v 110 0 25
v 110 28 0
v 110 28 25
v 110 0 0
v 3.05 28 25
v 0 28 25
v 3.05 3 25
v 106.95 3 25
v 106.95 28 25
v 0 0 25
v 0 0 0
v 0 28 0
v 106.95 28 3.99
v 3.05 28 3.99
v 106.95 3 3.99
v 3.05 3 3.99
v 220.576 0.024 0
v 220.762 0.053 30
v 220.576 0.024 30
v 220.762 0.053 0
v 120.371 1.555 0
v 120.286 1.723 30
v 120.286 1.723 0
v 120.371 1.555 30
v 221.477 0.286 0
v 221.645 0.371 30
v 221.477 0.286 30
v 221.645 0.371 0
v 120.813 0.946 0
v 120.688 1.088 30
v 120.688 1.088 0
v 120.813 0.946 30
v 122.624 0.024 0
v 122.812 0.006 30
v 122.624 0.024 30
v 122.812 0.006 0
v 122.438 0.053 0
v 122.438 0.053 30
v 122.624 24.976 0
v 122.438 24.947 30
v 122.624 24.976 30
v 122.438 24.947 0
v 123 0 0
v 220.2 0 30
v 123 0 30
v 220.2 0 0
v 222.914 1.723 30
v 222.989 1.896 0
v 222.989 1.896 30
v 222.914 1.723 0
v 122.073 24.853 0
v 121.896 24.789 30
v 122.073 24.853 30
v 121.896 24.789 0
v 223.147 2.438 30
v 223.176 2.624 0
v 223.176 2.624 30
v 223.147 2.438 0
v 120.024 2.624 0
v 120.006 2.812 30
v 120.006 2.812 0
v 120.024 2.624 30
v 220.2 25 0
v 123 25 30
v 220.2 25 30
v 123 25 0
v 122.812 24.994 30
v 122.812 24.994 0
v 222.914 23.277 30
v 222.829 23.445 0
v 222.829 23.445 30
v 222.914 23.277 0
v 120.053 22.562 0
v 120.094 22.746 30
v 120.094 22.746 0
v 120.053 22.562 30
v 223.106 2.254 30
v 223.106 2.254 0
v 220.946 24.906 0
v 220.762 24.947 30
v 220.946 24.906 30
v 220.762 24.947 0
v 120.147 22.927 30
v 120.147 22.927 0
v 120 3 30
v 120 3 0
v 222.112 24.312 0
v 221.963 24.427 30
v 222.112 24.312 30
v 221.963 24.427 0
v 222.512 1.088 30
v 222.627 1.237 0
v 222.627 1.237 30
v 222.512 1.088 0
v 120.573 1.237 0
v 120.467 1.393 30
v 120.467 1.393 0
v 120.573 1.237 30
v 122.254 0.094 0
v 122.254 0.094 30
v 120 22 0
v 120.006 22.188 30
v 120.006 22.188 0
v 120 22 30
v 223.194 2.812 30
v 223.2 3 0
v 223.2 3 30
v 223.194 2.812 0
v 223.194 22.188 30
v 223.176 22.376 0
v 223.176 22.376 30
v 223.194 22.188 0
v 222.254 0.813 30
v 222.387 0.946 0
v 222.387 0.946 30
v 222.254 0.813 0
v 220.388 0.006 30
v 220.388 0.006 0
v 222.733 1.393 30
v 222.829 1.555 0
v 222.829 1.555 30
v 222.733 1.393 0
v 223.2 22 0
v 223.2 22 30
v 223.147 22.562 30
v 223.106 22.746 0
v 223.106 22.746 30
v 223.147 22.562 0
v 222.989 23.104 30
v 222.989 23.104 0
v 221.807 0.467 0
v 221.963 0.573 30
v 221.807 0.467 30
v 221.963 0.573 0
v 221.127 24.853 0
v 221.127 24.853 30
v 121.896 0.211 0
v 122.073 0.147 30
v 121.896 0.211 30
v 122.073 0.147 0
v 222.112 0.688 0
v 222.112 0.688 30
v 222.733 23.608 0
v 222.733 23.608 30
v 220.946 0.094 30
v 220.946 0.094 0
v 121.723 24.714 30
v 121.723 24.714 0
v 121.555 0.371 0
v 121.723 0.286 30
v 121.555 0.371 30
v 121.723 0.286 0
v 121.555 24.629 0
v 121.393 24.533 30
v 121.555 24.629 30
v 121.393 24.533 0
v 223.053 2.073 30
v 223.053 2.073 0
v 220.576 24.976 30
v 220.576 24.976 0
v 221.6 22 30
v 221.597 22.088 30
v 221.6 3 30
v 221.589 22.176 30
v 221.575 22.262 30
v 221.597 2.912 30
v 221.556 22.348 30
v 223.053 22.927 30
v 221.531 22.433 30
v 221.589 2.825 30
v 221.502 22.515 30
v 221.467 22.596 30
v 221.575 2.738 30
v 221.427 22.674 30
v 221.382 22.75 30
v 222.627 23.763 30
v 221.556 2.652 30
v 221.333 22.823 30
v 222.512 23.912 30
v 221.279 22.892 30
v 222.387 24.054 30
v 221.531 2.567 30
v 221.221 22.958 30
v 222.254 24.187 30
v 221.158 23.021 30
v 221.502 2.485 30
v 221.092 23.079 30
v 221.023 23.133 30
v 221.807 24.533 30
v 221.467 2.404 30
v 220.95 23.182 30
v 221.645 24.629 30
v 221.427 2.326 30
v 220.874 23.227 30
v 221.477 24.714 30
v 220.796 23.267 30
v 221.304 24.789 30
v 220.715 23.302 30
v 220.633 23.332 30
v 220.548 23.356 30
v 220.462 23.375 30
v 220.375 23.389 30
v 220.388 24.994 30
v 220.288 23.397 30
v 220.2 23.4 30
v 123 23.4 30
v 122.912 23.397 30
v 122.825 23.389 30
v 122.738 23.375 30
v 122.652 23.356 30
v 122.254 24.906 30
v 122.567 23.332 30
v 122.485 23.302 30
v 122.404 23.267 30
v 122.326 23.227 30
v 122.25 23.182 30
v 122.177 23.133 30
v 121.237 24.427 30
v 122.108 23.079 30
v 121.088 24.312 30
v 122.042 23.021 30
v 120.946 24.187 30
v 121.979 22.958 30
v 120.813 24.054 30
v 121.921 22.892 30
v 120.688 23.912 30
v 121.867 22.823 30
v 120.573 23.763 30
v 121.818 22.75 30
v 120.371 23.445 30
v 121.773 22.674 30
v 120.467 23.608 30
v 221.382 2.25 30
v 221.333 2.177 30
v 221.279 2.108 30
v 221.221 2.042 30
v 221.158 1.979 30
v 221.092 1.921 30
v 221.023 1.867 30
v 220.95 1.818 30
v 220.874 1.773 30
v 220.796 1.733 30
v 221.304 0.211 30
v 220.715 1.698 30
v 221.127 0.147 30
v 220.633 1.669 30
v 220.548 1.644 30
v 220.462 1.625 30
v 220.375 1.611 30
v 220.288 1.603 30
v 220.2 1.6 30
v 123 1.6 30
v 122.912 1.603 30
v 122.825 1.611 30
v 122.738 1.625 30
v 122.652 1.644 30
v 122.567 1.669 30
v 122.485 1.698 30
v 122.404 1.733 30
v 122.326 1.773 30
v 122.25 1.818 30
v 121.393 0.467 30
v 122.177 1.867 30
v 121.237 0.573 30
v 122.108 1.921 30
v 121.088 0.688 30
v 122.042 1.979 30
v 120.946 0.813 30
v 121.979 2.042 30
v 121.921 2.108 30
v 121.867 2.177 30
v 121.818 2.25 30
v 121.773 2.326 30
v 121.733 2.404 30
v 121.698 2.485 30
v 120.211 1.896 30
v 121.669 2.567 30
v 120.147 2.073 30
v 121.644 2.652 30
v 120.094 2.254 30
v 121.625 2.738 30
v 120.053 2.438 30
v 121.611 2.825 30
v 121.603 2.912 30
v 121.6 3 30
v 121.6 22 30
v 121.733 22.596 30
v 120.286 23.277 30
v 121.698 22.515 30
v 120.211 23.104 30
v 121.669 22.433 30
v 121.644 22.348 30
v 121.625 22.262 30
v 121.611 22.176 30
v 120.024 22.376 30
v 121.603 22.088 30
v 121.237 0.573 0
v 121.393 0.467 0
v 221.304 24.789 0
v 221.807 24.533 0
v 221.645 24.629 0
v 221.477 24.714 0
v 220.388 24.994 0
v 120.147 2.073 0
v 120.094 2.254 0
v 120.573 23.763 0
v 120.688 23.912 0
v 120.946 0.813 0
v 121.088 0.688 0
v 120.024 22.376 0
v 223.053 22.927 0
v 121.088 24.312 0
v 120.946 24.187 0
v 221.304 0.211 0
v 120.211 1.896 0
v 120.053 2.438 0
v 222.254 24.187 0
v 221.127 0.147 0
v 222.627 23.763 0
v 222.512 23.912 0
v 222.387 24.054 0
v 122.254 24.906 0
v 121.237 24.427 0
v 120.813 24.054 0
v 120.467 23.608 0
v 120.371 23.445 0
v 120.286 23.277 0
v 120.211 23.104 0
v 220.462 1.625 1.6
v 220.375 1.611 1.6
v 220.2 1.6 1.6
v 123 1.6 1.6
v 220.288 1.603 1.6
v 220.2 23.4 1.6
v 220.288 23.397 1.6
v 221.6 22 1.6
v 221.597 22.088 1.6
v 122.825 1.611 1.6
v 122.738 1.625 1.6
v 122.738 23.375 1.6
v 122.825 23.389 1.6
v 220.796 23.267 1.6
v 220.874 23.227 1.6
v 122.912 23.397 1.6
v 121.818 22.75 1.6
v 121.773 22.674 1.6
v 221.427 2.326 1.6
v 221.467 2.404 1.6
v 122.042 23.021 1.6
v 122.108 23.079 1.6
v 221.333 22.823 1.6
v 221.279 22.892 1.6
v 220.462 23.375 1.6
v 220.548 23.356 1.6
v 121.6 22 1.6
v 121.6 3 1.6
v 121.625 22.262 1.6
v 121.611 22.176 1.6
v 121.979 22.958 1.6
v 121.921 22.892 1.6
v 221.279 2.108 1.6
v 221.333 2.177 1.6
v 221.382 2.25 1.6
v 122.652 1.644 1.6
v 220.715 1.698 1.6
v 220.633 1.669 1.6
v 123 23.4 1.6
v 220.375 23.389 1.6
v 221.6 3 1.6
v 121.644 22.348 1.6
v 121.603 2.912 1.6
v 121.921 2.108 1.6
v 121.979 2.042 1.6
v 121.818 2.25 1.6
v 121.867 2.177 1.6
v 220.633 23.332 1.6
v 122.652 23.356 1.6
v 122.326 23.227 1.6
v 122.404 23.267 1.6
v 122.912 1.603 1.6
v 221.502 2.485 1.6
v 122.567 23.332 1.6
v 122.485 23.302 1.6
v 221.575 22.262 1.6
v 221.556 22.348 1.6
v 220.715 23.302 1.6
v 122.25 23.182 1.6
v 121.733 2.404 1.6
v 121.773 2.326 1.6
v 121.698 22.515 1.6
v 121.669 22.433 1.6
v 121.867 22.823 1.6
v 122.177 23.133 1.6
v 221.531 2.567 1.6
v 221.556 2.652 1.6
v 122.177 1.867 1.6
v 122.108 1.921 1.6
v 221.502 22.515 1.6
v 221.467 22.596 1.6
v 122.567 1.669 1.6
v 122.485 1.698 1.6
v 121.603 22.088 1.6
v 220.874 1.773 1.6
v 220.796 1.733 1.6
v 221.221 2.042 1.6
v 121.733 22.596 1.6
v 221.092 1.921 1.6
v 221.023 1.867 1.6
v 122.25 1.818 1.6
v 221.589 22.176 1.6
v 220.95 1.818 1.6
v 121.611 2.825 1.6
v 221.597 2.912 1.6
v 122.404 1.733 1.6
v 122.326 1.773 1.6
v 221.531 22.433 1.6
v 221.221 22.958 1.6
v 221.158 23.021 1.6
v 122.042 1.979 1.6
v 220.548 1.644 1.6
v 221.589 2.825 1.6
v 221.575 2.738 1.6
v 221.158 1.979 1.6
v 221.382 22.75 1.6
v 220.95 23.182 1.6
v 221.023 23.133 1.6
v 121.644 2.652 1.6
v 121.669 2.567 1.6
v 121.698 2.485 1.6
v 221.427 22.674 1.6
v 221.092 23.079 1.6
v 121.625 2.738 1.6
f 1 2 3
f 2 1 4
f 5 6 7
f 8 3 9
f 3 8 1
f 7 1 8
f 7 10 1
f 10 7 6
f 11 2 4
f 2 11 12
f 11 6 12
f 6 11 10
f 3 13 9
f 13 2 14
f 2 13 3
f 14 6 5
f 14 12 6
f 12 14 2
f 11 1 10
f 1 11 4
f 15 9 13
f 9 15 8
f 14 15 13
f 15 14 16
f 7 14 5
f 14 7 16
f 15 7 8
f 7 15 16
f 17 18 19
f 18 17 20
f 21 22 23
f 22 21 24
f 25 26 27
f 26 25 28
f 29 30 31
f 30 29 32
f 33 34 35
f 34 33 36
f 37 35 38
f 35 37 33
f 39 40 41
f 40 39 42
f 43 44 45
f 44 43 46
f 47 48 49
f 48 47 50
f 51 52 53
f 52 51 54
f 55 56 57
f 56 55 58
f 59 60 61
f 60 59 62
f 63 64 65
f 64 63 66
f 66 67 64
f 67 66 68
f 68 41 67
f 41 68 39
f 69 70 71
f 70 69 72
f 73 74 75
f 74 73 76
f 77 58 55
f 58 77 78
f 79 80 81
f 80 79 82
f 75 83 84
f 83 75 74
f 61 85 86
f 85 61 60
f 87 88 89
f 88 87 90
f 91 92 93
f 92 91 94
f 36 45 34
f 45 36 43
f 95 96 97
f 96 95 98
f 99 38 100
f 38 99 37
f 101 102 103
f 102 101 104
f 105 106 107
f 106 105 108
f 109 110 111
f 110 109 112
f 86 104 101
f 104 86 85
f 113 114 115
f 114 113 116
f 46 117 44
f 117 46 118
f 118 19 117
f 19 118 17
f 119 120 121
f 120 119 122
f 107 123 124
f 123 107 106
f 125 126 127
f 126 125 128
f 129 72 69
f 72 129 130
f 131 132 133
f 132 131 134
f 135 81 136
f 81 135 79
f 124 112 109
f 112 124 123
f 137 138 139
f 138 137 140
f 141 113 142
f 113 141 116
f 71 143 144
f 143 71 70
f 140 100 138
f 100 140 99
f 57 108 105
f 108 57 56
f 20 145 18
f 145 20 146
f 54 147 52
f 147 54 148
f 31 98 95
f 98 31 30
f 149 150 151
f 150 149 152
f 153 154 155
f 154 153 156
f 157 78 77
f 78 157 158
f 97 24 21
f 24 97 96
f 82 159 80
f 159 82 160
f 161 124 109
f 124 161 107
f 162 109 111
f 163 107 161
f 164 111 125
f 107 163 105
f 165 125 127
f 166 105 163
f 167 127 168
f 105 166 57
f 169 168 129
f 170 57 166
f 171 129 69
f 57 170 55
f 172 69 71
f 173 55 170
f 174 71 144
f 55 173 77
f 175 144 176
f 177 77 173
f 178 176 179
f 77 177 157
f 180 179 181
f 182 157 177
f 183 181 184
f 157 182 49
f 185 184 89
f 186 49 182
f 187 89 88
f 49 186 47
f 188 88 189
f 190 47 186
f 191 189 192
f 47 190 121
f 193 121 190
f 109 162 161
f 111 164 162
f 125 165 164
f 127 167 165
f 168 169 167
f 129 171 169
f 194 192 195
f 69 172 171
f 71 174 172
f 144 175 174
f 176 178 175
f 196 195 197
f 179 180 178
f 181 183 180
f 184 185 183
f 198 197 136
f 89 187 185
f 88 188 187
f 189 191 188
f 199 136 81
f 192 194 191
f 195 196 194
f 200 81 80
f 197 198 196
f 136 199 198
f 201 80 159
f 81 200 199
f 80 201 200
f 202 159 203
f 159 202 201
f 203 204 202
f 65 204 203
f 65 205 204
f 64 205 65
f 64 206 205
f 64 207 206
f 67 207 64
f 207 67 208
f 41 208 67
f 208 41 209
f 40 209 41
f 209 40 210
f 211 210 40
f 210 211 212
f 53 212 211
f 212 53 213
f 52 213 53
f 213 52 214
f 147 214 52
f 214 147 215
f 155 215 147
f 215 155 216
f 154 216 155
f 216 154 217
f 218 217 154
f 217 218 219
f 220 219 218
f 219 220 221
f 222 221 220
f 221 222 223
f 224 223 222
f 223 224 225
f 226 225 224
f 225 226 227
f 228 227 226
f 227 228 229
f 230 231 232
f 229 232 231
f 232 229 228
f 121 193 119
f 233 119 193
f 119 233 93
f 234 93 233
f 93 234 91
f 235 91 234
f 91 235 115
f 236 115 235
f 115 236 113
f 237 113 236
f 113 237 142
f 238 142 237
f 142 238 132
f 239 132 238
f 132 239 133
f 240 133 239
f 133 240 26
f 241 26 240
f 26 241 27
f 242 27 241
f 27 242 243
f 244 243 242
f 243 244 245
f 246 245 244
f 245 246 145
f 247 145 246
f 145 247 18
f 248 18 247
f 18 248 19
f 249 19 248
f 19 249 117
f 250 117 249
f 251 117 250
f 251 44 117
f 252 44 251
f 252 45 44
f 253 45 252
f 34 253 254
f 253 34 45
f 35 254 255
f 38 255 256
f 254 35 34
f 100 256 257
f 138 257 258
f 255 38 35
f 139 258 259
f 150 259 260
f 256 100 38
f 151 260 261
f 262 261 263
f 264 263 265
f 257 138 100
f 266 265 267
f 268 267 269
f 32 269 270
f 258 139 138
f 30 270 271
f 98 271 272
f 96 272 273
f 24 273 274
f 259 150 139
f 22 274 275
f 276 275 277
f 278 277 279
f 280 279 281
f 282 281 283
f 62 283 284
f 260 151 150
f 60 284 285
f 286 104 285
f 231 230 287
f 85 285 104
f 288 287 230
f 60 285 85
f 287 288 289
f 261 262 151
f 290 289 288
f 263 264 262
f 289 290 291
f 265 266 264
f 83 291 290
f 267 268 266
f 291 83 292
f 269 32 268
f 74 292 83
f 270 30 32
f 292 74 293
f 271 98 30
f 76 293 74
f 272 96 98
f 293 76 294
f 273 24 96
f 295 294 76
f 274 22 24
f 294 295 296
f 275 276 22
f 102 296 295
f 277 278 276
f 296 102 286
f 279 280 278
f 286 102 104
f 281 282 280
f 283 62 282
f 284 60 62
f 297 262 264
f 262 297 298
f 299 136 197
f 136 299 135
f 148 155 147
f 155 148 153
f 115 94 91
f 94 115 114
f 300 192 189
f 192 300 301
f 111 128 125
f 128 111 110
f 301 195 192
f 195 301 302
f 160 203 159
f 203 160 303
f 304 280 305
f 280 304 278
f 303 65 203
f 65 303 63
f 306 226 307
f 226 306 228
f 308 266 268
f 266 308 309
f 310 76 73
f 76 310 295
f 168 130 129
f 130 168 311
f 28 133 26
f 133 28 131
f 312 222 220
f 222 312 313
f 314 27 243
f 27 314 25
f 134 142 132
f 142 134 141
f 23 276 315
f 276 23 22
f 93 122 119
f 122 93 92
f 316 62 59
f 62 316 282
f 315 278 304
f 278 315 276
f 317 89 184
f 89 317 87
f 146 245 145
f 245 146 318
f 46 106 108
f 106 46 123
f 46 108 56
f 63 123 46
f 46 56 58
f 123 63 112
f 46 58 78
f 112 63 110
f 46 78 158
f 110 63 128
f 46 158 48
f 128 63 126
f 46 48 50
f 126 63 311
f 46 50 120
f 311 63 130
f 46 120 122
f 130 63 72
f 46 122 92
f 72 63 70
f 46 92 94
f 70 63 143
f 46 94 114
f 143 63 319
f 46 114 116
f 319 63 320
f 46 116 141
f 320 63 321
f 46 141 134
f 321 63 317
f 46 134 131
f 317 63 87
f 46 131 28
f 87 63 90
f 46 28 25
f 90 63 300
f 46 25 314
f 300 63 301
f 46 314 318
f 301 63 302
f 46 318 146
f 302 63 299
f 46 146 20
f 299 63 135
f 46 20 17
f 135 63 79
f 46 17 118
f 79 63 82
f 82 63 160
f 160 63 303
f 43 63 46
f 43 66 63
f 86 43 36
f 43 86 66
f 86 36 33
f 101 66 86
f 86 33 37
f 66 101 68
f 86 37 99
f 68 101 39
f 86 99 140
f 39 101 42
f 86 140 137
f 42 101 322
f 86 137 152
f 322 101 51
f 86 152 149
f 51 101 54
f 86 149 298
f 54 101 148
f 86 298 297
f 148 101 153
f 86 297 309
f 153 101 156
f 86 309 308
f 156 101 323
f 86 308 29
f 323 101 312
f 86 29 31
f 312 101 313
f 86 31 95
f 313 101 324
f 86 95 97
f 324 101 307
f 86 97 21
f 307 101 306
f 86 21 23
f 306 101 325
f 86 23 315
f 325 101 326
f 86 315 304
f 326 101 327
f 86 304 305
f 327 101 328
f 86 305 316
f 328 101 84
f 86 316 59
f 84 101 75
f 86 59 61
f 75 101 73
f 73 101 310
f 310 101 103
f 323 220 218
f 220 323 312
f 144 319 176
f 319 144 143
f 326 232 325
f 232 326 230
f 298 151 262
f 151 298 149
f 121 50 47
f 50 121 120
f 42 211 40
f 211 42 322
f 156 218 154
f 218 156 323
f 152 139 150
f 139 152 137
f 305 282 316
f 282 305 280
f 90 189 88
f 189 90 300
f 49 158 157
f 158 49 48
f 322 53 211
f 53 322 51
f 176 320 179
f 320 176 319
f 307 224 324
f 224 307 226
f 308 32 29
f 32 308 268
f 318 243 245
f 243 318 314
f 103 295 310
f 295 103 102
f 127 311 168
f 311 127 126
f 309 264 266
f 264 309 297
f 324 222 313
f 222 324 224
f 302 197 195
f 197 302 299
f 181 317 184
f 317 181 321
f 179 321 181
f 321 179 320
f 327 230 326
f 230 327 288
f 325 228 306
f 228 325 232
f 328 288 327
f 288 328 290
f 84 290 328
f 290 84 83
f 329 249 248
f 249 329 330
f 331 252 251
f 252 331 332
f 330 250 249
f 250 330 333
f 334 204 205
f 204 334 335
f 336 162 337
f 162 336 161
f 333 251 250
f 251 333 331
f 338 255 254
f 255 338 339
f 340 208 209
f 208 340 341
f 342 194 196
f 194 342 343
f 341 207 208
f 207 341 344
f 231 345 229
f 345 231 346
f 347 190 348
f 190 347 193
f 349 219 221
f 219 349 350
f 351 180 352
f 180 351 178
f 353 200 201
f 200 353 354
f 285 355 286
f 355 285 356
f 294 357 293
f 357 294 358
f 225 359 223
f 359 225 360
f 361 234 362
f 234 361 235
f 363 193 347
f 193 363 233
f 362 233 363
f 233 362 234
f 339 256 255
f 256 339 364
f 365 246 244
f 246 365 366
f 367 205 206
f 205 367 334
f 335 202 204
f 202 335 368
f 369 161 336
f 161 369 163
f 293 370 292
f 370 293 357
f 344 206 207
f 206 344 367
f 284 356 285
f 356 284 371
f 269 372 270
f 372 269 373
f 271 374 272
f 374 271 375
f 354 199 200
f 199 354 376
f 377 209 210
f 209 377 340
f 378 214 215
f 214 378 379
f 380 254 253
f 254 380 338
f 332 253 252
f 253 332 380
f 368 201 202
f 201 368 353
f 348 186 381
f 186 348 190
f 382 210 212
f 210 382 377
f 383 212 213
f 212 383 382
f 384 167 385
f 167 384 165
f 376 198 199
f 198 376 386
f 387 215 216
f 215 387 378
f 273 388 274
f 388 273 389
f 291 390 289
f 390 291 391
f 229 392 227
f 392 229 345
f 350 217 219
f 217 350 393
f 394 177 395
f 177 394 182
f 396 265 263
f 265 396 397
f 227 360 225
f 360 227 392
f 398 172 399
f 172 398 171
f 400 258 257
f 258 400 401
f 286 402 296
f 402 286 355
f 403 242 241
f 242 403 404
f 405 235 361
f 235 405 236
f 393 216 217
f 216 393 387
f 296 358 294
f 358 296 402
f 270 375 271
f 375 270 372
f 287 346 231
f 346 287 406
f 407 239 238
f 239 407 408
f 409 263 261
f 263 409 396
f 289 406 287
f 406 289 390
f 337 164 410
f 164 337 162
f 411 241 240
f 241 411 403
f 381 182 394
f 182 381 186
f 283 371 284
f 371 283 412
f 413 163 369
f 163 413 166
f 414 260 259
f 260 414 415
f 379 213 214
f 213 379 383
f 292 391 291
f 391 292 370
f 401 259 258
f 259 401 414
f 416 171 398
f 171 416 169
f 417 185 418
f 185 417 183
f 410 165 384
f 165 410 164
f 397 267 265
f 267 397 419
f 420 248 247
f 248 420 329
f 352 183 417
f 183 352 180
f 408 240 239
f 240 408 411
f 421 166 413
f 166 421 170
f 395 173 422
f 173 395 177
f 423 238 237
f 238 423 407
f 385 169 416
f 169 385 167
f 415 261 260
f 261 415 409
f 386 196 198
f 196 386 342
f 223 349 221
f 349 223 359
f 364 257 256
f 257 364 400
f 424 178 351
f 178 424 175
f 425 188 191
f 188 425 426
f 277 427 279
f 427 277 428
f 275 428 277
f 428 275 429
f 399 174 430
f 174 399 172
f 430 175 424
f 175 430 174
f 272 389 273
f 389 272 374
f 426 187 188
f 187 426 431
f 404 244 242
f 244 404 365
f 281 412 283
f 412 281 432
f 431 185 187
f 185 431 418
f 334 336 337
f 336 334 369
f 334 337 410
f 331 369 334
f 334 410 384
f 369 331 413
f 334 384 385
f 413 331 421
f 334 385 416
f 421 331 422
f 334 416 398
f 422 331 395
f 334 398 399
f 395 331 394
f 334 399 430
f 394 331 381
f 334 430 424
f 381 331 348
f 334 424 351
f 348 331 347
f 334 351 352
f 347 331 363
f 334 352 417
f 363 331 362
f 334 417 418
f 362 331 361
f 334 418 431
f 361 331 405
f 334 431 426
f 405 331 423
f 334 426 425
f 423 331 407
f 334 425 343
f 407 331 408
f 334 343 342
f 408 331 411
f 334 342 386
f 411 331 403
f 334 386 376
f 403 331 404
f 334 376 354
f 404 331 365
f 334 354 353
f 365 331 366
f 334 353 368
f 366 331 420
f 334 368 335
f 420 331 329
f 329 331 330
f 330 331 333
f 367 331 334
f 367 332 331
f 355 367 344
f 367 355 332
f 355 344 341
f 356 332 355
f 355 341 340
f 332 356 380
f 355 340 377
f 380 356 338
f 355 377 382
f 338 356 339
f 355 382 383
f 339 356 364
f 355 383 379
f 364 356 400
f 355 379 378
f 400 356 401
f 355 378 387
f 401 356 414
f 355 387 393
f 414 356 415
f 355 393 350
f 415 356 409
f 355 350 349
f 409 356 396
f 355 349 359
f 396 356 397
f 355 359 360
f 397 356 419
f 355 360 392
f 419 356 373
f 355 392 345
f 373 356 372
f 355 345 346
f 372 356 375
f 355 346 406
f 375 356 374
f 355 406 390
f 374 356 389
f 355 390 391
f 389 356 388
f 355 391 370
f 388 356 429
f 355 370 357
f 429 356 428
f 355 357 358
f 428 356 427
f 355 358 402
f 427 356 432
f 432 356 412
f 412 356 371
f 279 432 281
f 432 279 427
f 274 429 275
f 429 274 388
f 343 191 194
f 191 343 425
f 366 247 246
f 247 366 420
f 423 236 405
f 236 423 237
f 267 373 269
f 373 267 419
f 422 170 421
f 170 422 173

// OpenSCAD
// file: common.scad
// Common FDM helper modules
// Include fdm-pla.scad before using these.

include <fdm-pla.scad>

// A hole compensated for FDM shrinkage.
// d = nominal diameter, h = depth, center = center vertically
module fdm_hole(d, h, center=false) {
  cylinder(d=d + FDM_HOLE_COMPENSATION, h=h, center=center, $fn=max(32, ceil(d*4)));
}

// A shaft/pin sized for press fit into a compensated hole.
// d = nominal diameter, h = height
module fdm_shaft(d, h, center=false) {
  cylinder(d=d + FDM_PRESS_FIT * 2, h=h, center=center, $fn=max(32, ceil(d*4)));
}

// Bolt pattern — places children at evenly spaced points on a circle.
// n = number of bolts, r = bolt circle radius
module bolt_pattern(n, r) {
  for (i = [0 : n-1]) {
    angle = i * 360 / n;
    translate([r * cos(angle), r * sin(angle), 0])
      children();
  }
}

// Cylinder with a 45° chamfer on the bottom edge.
// d = diameter, h = height, chamfer = chamfer size
module chamfer_cylinder(d, h, chamfer=0.5) {
  union() {
    // Main body above chamfer
    translate([0, 0, chamfer])
      cylinder(d=d, h=h - chamfer, $fn=max(32, ceil(d*4)));
    // Chamfer cone
    cylinder(d1=d - chamfer*2, d2=d, h=chamfer, $fn=max(32, ceil(d*4)));
  }
}
// file: bambu-x1c.scad
// Bambu Lab X1 Carbon — build volume and dimension reporting

BED_X = 256;
BED_Y = 256;
BED_Z = 256;

// Assert a part fits within the build volume.
// Call with the bounding box dimensions of your part.
module assert_fits(x, y, z) {
  assert(x <= BED_X, str("Part X (", x, "mm) exceeds bed X (", BED_X, "mm)"));
  assert(y <= BED_Y, str("Part Y (", y, "mm) exceeds bed Y (", BED_Y, "mm)"));
  assert(z <= BED_Z, str("Part Z (", z, "mm) exceeds bed Z (", BED_Z, "mm)"));
}

// Echo dimensions in a parseable format for the Node.js pipeline.
// Call at the end of your .scad file with the part's bounding box.
module report_dimensions(x, y, z, label="part") {
  assert_fits(x, y, z);
  echo(str("DIMENSION:", label, ":x=", x));
  echo(str("DIMENSION:", label, ":y=", y));
  echo(str("DIMENSION:", label, ":z=", z));
}
// file: fdm-pla.scad
// FDM PLA Tolerance Constants
// Use these in all designs to ensure proper fit on the Bambu X1C.

// Fit offsets (applied to radius or per-side dimension)
FDM_PRESS_FIT     = -0.15;  // Friction-held joints
FDM_CLEARANCE_FIT =  0.25;  // Easy insert/remove
FDM_SLIDING_FIT   =  0.35;  // Moving parts

// Hole compensation (applied to diameter)
FDM_HOLE_COMPENSATION = 0.4;

// Structural minimums
MIN_WALL = 1.2;       // 3 perimeters at 0.4mm nozzle
MIN_FLOOR_CEIL = 0.8; // 4 layers at 0.2mm

// Overhang and bridging limits
MAX_OVERHANG_ANGLE = 45;  // degrees from vertical
MAX_BRIDGE_SPAN    = 10;  // mm unsupported horizontal span

// Layer and nozzle
NOZZLE_DIA   = 0.4;
LAYER_HEIGHT = 0.2;
// main file
// Tray-Slot Fit-Pair Test Print
// ptouch-cradle / tray-slot-fit-pair
//
// PURPOSE:
//   Verify the 0.35 mm per-side sliding fit between the tray exterior
//   (103.2 × 94.2 mm) and the cradle slot (103.9 × 94.9 mm) before
//   committing to the full ~150 cm³ two-part print.
//
// TWO PIECES — print both in one run, on the same bed plate:
//
//   (A) MINI CRADLE SLOT — a short Y-slice of the cradle's tray slot,
//       exposed as a U-channel:
//         • Slot interior 103.9 mm W × 22.3 mm deep
//         • Slot walls   3.05 mm thick each side (matches cradle wall_thickness)
//         • Back wall    3.0 mm (closes the U; acts as the cradle's back-wall stub)
//         • Height       25 mm (full cradle wall height, printed base-down)
//         • Y-depth      25 mm interior (enough to exercise the full engagement depth)
//         • Base plate   4 mm thick at z=0 (same as cradle base_thickness)
//         • Open at the front (+Y) so the tray section slides in from the front
//         • Top is OPEN (same open-top slot as the full cradle)
//
//   (B) MINI TRAY SECTION — a short Y-slice of the tray exterior bounding box:
//         • Exterior     103.2 mm W × 30 mm H
//         • Y-depth      25 mm (solid slug — no interior, no ramp, no front lip)
//         • Printed with z=0 on bed, same orientation as the real tray
//         • Includes the r=3 vertical edge fillets (same fillet_vert_r as real tray)
//
// HOW TO USE:
//   1. Print both pieces in one bed run (no supports required).
//   2. After printing, slide the mini tray section into the mini cradle slot
//      from the front (+Y opening). It should slide in and out smoothly.
//   3. Check for:
//      - Smooth insertion with slight consistent resistance → PASS
//      - Loose rattle on all sides → printer running wide; adjust XY compensation
//      - Cannot insert or requires force → printer running narrow; adjust XY comp
//   4. If PASS, proceed to full print. If FAIL, adjust FDM dimensional accuracy
//      (Bambu Studio: Process → Advanced → XY hole/contour compensation).
//
// LAYOUT:
//   Piece A (mini cradle slot) at X=0, Y=0.
//   Piece B (mini tray section) at X = slot_total_w + 10 mm gap.
//   Combined bed footprint ≈ 223 × 28 × 30 mm.

include <fdm-pla.scad>
include <bambu-x1c.scad>
include <common.scad>

// ===== Render quality (draft defaults — shipper bumps if needed) =====
$fn              = 100;

// ===== Parameters inherited from parent design (ptouch-cradle spec.json) =====

// Cradle slot dimensions
slot_w           = 103.9;   // tray_slot_interior_w
slot_h           = 22.3;    // tray_slot_interior_h (engagement depth)
cradle_wall_t    = 3.05;    // slot_wall_thickness_each_side
cradle_base_t    = 4.0;     // base_thickness
cradle_wall_h    = 25.0;    // low_wall_h (total cradle wall height)

// Tray exterior dimensions
tray_ext_w       = 103.2;   // tray_exterior_w
tray_ext_h       = 30.0;    // tray_exterior_h
tray_fillet_r    = 3.0;     // vertical edge fillet (fillet_vert_r in tray.scad)

// Test-piece Y depth — short enough to be fast, long enough to confirm fit feel
test_y_depth     = 25.0;

// Gap between the two pieces on the bed
bed_gap          = 10.0;

// U-channel outer width: slot + two side walls
slot_total_w     = slot_w + 2 * cradle_wall_t;   // 103.9 + 6.1 = 110.0 mm


// ===================================================================
// PIECE A — MINI CRADLE SLOT (U-channel)
//
// Two side walls + a back wall + a base plate.
// Open at the front (+Y face) and open at the top (z = cradle_wall_h).
// Printed base-down (z=0 on bed, same orientation as the real cradle).
//
// Coordinate origin: X=0 at outer left face, Y=0 at back outer face, Z=0 at bed.
// ===================================================================

module mini_cradle_slot() {
    back_wall_t = 3.0;   // match cradle wall_thickness

    outer_w = slot_total_w;               // 110.0 mm
    outer_d = test_y_depth + back_wall_t; // 25 + 3 = 28 mm
    outer_h = cradle_wall_h;              // 25 mm

    difference() {
        // Solid outer envelope
        cube([outer_w, outer_d, outer_h]);

        // Slot cavity:
        //   X: cradle_wall_t in from each side → 3.05 mm side walls remain
        //   Y: starts at back_wall_t → 3 mm back wall remains; extends to open front
        //   Z: starts at cradle_base_t → 4 mm base plate remains; extends above top
        translate([cradle_wall_t,
                   back_wall_t,
                   cradle_base_t - 0.01])
            cube([slot_w,
                  test_y_depth + 0.02,   // +slop so cutter clears the front face
                  slot_h + 1]);          // +1 so cutter exits the top
    }
}


// ===================================================================
// PIECE B — MINI TRAY SECTION (hollow shell, open at top)
//
// Exterior cross-section of the tray (103.2 mm W × 30 mm H) extruded
// test_y_depth mm in Y. r=3 vertical corner fillets match the real tray.
// HOLLOW interior: 1.6 mm walls + 1.6 mm floor, open at the top.
// What matters for the fit test is the EXTERIOR — interior can be
// anything; making it a thin-walled shell saves ~70% of filament vs
// a solid slug.
// Printed with z=0 on bed (same orientation as the real tray).
//
// Coordinate origin: X=0 at outer left face, Y=0 at back face, Z=0 at bed.
// ===================================================================

shell_wall_t  = 1.6;   // matches tray's wall_t
shell_floor_t = 1.6;   // matches tray's floor_t

module mini_tray_section() {
    difference() {
        // Outer shell — same rounded rect as the solid version
        linear_extrude(height = tray_ext_h)
            translate([tray_fillet_r, tray_fillet_r])
                offset(r = tray_fillet_r)
                    square([tray_ext_w - 2 * tray_fillet_r,
                            test_y_depth - 2 * tray_fillet_r]);

        // Interior cavity — 1.6mm walls + 1.6mm floor, open at top
        int_w = tray_ext_w - 2 * shell_wall_t;
        int_d = test_y_depth - 2 * shell_wall_t;
        int_r = max(tray_fillet_r - shell_wall_t, 0.8);
        translate([shell_wall_t, shell_wall_t, shell_floor_t])
            linear_extrude(height = tray_ext_h)   // extrude past the top to open
                translate([int_r, int_r])
                    offset(r = int_r)
                        square([int_w - 2 * int_r,
                                int_d - 2 * int_r]);
    }
}


// ===================================================================
// BED LAYOUT
// ===================================================================

// Piece A — mini cradle slot at origin
mini_cradle_slot();

// Piece B — mini tray section shifted right
translate([slot_total_w + bed_gap, 0, 0])
    mini_tray_section();


// ===================================================================
// DIMENSION REPORTS
// ===================================================================

back_wall_t_local = 3.0;
slot_outer_d      = test_y_depth + back_wall_t_local;   // 28.0

report_dimensions(slot_total_w, slot_outer_d, cradle_wall_h,  "mini_cradle_slot");
report_dimensions(tray_ext_w,   test_y_depth, tray_ext_h,     "mini_tray_section");

combined_w = slot_total_w + bed_gap + tray_ext_w;   // 223.2
report_dimensions(combined_w,
                  max(slot_outer_d, test_y_depth),
                  max(cradle_wall_h, tray_ext_h),
                  "combined_bed_footprint");
